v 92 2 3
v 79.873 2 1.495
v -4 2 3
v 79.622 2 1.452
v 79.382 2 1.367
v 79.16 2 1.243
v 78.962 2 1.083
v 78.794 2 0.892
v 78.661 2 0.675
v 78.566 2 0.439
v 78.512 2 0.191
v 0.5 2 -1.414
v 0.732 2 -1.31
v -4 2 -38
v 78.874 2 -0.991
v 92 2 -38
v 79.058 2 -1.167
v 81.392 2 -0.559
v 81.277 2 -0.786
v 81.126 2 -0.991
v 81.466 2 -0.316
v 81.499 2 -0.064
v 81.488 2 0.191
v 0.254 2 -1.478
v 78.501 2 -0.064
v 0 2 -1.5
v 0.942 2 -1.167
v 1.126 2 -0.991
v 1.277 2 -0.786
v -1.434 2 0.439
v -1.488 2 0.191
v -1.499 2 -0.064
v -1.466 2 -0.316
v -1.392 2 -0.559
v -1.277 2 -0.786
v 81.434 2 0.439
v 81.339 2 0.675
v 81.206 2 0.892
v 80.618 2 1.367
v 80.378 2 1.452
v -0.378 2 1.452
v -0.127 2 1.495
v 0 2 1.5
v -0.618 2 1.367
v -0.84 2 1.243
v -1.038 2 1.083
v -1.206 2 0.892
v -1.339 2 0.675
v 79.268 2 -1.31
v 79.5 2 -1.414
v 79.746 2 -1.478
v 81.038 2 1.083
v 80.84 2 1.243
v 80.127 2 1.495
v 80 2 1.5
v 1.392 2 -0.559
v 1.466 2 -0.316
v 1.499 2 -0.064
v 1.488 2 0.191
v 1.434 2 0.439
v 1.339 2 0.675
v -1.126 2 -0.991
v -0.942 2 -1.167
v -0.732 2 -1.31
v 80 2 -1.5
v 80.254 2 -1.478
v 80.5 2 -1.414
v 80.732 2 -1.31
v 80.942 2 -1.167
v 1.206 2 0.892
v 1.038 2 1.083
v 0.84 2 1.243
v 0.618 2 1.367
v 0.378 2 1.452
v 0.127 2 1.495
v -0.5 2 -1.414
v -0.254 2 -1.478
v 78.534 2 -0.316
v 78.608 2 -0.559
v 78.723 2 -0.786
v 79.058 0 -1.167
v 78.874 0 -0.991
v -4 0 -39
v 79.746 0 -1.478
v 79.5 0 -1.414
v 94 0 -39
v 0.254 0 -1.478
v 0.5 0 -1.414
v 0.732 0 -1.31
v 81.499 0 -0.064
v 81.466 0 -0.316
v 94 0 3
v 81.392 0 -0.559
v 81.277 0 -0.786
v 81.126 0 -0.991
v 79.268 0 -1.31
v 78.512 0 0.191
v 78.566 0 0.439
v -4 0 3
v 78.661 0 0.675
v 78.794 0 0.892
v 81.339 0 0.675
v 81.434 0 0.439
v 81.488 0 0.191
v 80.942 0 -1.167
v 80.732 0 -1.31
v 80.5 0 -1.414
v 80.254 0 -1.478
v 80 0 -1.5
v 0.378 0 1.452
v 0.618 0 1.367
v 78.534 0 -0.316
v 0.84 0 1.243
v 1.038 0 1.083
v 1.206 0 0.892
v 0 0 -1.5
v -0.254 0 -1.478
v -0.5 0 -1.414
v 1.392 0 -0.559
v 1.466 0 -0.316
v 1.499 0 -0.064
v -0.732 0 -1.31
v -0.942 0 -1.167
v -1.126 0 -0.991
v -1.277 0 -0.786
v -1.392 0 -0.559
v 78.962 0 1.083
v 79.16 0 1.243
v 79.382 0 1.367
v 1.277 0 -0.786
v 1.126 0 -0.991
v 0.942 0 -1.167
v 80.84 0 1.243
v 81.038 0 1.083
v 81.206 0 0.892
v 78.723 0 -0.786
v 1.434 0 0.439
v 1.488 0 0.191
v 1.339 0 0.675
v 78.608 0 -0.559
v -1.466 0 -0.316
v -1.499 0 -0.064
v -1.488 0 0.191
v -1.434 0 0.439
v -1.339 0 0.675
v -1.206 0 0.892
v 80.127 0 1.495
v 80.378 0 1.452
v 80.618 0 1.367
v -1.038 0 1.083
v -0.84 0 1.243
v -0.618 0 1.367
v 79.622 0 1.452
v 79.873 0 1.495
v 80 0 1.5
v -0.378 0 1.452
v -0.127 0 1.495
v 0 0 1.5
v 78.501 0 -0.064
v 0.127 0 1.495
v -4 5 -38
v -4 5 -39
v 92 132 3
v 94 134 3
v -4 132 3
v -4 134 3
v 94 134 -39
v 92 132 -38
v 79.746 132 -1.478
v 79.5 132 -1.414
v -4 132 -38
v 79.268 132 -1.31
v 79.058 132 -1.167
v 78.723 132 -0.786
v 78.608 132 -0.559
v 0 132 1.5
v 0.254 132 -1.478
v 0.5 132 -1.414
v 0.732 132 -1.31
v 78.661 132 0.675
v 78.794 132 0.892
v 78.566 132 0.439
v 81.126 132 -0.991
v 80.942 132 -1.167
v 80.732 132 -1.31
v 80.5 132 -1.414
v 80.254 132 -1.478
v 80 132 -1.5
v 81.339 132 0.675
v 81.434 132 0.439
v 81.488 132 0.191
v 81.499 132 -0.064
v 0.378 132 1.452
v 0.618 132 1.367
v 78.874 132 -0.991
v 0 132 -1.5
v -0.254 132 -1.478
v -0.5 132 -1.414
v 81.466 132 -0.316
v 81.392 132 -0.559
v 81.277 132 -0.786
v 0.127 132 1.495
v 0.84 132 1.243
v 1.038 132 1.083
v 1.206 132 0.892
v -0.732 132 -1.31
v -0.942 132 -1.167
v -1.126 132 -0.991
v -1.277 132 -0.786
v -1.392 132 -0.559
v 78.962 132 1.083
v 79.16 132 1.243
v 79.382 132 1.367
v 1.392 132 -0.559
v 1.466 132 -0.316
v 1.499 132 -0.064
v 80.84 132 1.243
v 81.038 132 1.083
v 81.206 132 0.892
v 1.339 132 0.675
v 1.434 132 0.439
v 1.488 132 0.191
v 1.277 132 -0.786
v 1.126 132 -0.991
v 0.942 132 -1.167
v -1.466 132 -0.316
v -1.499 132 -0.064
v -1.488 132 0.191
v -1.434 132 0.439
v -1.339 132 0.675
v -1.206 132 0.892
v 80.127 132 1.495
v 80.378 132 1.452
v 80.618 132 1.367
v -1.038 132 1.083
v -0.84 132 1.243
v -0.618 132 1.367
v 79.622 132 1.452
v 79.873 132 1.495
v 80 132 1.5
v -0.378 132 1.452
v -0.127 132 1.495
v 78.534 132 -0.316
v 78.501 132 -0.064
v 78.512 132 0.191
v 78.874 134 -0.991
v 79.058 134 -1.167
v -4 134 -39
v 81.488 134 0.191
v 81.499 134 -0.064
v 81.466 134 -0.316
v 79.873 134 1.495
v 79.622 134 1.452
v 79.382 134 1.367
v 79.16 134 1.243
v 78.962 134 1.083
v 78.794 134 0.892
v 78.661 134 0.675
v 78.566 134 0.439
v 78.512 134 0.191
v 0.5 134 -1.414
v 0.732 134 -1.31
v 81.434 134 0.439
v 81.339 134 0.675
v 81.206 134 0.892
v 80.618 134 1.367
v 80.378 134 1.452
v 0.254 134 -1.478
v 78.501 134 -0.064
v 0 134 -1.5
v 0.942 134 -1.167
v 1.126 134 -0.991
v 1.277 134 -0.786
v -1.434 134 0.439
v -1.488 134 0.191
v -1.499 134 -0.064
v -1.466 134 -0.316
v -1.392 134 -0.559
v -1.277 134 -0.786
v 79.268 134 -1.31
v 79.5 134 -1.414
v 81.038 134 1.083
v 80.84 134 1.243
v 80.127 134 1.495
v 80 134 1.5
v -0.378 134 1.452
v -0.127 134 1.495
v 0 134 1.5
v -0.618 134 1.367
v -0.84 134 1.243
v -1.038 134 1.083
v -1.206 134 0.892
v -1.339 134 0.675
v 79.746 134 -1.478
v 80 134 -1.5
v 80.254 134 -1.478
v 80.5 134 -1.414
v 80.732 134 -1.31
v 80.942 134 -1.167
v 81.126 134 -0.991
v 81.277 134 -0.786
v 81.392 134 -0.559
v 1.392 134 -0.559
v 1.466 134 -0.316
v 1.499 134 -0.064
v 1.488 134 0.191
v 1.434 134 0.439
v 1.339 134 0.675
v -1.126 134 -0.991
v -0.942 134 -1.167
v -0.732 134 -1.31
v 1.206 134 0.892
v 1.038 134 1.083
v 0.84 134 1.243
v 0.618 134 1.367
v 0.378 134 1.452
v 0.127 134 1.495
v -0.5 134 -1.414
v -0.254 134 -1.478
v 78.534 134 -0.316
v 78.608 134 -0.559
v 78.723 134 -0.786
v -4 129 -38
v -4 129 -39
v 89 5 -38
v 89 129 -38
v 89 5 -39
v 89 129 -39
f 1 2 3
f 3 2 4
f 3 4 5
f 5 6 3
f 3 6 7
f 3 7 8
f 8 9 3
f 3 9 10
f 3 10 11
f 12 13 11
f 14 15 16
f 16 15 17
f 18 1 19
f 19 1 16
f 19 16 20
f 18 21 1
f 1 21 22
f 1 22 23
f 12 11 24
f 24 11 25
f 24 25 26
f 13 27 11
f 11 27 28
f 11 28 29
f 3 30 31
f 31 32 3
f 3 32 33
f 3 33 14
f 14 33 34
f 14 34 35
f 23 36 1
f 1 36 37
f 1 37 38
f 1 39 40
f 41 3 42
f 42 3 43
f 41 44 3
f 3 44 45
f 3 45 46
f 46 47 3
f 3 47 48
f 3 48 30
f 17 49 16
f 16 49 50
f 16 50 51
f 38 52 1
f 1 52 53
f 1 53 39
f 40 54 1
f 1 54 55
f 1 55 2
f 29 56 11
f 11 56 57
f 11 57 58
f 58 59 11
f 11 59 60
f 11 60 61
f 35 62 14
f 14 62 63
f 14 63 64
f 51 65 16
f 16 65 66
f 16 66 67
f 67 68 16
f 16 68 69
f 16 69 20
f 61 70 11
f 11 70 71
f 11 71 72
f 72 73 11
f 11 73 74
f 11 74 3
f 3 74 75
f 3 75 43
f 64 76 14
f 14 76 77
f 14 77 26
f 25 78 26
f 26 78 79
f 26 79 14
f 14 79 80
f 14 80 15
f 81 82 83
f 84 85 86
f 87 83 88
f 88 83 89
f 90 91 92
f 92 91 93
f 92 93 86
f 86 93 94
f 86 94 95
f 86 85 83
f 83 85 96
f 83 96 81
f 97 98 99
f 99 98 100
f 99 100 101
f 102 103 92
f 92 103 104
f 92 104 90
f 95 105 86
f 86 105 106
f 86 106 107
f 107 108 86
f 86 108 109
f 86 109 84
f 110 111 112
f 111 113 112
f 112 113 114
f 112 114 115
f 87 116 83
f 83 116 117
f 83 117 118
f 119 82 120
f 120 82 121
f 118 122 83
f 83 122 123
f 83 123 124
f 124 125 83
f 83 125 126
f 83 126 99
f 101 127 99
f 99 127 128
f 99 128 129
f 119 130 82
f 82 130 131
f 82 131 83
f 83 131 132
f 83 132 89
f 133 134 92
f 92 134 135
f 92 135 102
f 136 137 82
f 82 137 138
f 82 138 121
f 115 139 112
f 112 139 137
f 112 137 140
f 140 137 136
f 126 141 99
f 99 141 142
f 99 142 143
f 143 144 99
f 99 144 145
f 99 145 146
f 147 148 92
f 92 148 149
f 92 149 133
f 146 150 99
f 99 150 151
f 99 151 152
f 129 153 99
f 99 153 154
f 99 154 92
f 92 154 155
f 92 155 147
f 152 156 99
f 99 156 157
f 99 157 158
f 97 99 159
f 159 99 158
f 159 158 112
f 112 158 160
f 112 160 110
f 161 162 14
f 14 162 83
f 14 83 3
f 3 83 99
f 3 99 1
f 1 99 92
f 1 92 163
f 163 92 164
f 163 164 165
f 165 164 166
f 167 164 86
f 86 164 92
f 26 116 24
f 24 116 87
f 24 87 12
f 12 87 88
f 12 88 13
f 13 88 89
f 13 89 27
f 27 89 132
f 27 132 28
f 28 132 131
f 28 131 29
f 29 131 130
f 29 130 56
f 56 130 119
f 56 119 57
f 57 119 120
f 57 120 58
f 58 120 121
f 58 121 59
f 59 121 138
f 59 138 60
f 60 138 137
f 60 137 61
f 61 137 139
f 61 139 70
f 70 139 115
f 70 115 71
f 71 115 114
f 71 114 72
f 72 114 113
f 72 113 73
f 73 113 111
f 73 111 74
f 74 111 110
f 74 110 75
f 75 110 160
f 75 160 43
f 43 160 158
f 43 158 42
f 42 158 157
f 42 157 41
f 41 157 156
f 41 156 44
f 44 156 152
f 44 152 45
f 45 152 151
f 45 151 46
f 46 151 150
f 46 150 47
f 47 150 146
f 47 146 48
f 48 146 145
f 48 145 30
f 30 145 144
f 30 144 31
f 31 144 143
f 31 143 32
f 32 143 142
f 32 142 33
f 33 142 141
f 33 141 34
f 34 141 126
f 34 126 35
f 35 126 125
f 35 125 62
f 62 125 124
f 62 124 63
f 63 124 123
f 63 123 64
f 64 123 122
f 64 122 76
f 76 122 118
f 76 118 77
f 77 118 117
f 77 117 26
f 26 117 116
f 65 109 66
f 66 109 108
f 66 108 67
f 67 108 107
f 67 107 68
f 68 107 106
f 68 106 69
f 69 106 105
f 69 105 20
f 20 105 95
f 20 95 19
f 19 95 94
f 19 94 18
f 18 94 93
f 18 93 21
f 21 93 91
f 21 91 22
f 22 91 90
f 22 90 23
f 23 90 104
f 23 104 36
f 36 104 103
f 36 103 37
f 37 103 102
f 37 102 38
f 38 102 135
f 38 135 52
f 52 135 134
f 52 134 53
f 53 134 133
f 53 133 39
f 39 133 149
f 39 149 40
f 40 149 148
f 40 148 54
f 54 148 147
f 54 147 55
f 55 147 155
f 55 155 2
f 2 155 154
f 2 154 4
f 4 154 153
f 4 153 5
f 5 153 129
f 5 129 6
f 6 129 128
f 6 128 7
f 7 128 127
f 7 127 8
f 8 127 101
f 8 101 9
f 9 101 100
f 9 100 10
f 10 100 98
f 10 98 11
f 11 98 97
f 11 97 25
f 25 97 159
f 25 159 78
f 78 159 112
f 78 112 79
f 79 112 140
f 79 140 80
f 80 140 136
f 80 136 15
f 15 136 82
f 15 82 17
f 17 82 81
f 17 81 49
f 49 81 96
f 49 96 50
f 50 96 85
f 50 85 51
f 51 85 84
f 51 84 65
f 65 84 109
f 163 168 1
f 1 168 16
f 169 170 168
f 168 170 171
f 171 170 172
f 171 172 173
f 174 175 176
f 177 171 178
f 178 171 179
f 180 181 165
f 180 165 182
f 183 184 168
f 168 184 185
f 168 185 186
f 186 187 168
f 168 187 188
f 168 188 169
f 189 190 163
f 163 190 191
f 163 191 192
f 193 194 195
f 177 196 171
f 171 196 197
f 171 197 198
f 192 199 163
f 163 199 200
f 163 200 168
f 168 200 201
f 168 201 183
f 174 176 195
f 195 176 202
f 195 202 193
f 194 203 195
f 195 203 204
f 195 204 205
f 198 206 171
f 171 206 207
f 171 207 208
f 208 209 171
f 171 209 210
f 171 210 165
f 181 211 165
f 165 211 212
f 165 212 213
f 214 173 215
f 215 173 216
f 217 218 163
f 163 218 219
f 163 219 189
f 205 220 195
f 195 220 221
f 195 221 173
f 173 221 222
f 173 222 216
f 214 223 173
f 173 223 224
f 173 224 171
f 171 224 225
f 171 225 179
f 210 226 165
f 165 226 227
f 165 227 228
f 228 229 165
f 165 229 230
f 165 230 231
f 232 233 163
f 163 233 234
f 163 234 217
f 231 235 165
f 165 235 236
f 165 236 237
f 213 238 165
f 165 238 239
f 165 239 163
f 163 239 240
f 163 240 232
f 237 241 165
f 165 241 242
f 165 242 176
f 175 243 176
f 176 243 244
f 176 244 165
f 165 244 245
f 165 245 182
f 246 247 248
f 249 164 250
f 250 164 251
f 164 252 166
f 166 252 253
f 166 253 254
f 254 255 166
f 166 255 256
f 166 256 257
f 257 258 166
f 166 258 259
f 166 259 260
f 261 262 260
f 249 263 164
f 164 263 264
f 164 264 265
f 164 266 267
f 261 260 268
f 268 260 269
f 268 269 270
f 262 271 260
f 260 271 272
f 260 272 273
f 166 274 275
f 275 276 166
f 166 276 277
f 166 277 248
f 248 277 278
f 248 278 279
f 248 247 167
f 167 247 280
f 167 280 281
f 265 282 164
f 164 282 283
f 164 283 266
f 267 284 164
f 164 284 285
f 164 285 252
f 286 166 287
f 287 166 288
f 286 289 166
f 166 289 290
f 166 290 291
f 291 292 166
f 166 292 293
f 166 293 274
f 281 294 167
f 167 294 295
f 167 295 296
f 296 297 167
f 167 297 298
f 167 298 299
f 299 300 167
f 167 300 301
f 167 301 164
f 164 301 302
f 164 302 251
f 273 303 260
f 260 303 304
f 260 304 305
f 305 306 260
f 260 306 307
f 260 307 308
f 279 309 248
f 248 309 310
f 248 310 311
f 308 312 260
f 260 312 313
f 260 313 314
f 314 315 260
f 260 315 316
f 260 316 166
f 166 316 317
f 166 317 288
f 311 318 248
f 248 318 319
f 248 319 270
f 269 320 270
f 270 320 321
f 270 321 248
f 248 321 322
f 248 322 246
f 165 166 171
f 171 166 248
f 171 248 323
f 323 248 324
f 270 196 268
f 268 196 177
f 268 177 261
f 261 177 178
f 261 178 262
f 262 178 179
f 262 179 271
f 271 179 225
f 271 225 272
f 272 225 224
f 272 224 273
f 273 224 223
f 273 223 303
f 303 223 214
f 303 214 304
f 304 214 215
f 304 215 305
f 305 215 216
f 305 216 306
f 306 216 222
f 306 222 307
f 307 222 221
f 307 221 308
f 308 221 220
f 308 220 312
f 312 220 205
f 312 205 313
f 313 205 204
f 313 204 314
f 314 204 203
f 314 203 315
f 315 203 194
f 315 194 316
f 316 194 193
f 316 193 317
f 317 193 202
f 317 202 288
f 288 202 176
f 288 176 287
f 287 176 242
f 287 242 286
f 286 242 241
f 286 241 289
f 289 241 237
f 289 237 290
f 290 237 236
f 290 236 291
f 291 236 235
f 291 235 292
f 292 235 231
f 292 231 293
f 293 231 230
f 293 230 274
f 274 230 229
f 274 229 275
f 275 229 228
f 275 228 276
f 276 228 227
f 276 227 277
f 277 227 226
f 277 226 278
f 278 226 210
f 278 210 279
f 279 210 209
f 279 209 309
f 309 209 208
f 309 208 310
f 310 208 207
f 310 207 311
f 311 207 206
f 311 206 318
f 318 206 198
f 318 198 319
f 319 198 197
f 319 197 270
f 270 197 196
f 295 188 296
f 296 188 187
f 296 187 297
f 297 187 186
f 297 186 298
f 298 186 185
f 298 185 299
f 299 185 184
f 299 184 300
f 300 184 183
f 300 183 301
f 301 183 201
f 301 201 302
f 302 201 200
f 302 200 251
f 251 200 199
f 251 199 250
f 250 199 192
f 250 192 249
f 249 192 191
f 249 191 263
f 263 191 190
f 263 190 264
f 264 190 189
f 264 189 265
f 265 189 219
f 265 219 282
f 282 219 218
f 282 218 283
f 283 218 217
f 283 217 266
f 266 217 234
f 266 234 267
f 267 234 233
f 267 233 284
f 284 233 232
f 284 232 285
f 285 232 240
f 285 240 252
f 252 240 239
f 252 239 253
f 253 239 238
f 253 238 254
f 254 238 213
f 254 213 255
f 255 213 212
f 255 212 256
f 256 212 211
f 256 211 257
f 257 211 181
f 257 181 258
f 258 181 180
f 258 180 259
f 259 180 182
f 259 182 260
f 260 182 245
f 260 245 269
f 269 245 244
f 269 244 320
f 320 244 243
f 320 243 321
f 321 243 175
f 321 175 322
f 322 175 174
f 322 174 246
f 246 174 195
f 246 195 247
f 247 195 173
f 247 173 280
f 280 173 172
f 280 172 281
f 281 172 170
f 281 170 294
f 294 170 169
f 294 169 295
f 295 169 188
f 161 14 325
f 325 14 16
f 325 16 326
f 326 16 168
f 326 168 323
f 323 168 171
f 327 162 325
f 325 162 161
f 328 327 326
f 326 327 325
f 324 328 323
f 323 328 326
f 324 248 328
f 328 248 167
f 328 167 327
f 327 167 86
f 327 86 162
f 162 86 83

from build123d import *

# Parameters (mm, degrees)
SKETCH1_W           = 98
SKETCH1_H           = 6
SKETCH1_R           = 1.5
BOSS_EXTRUDE1_DEPTH = 2
SKETCH2_W           = 2
SKETCH2_H           = 6
BOSS_EXTRUDE2_DEPTH = 130
SKETCH3_W           = 98
SKETCH3_H           = 6
SKETCH3_R           = 1.5
BOSS_EXTRUDE3_DEPTH = 2
BOSS_EXTRUDE4_DEPTH = 35
BOSS_EXTRUDE5_DEPTH = 1


with BuildPart() as part:
    # Sketch1 → Boss-Extrude1 (new body)
    with BuildSketch(Plane(origin=(0, 0, 0), x_dir=(1, 0, 0), z_dir=(0, 1, 0))):
        with Locations((45, 0)):
            Rectangle(SKETCH1_W, SKETCH1_H)
        with Locations(Location((0, 0, 0), (0, 0, 270))):
            Circle(SKETCH1_R, mode=Mode.SUBTRACT)
        with Locations(Location((80, 0, 0), (0, 0, 270))):
            Circle(SKETCH1_R, mode=Mode.SUBTRACT)
    extrude(amount=BOSS_EXTRUDE1_DEPTH)

    # Sketch2 → Boss-Extrude2 (add)
    with BuildSketch(Plane(origin=(0, 2, 0), x_dir=(1, 0, 0), z_dir=(0, 1, 0))):
        with Locations((93, 0)):
            Rectangle(SKETCH2_W, SKETCH2_H)
    extrude(amount=BOSS_EXTRUDE2_DEPTH)

    # Sketch3 → Boss-Extrude3 (add)
    with BuildSketch(Plane(origin=(0, 132, 0), x_dir=(1, 0, 0), z_dir=(0, 1, 0))):
        with Locations((45, 0)):
            Rectangle(SKETCH3_W, SKETCH3_H)
        with Locations(Location((0, 0, 0), (0, 0, 270))):
            Circle(SKETCH3_R, mode=Mode.SUBTRACT)
        with Locations(Location((80, 0, 0), (0, 0, 270))):
            Circle(SKETCH3_R, mode=Mode.SUBTRACT)
    extrude(amount=BOSS_EXTRUDE3_DEPTH)

    # Sketch4 → Boss-Extrude4 (add)
    with BuildSketch(Plane(origin=(0, 0, -3), x_dir=(-1, 0, 0), z_dir=(0, 0, -1))):
        Polygon((4, 0), (-92, 0), (-94, 0), (-94, 134), (-92, 134), (4, 134), (4, 132), (-92, 132), (-92, 2), (4, 2), align=None)
    extrude(amount=BOSS_EXTRUDE4_DEPTH)

    # Sketch5 → Boss-Extrude5 (add)
    with BuildSketch(Plane(origin=(0, 0, -38), x_dir=(-1, 0, 0), z_dir=(0, 0, -1))):
        Polygon((4, 0), (-94, 0), (-94, 5), (-94, 126), (-94, 134), (4, 134), (4, 129), (-89, 129), (-89, 5), (4, 5), align=None)
    extrude(amount=BOSS_EXTRUDE5_DEPTH)


solid = part.part
